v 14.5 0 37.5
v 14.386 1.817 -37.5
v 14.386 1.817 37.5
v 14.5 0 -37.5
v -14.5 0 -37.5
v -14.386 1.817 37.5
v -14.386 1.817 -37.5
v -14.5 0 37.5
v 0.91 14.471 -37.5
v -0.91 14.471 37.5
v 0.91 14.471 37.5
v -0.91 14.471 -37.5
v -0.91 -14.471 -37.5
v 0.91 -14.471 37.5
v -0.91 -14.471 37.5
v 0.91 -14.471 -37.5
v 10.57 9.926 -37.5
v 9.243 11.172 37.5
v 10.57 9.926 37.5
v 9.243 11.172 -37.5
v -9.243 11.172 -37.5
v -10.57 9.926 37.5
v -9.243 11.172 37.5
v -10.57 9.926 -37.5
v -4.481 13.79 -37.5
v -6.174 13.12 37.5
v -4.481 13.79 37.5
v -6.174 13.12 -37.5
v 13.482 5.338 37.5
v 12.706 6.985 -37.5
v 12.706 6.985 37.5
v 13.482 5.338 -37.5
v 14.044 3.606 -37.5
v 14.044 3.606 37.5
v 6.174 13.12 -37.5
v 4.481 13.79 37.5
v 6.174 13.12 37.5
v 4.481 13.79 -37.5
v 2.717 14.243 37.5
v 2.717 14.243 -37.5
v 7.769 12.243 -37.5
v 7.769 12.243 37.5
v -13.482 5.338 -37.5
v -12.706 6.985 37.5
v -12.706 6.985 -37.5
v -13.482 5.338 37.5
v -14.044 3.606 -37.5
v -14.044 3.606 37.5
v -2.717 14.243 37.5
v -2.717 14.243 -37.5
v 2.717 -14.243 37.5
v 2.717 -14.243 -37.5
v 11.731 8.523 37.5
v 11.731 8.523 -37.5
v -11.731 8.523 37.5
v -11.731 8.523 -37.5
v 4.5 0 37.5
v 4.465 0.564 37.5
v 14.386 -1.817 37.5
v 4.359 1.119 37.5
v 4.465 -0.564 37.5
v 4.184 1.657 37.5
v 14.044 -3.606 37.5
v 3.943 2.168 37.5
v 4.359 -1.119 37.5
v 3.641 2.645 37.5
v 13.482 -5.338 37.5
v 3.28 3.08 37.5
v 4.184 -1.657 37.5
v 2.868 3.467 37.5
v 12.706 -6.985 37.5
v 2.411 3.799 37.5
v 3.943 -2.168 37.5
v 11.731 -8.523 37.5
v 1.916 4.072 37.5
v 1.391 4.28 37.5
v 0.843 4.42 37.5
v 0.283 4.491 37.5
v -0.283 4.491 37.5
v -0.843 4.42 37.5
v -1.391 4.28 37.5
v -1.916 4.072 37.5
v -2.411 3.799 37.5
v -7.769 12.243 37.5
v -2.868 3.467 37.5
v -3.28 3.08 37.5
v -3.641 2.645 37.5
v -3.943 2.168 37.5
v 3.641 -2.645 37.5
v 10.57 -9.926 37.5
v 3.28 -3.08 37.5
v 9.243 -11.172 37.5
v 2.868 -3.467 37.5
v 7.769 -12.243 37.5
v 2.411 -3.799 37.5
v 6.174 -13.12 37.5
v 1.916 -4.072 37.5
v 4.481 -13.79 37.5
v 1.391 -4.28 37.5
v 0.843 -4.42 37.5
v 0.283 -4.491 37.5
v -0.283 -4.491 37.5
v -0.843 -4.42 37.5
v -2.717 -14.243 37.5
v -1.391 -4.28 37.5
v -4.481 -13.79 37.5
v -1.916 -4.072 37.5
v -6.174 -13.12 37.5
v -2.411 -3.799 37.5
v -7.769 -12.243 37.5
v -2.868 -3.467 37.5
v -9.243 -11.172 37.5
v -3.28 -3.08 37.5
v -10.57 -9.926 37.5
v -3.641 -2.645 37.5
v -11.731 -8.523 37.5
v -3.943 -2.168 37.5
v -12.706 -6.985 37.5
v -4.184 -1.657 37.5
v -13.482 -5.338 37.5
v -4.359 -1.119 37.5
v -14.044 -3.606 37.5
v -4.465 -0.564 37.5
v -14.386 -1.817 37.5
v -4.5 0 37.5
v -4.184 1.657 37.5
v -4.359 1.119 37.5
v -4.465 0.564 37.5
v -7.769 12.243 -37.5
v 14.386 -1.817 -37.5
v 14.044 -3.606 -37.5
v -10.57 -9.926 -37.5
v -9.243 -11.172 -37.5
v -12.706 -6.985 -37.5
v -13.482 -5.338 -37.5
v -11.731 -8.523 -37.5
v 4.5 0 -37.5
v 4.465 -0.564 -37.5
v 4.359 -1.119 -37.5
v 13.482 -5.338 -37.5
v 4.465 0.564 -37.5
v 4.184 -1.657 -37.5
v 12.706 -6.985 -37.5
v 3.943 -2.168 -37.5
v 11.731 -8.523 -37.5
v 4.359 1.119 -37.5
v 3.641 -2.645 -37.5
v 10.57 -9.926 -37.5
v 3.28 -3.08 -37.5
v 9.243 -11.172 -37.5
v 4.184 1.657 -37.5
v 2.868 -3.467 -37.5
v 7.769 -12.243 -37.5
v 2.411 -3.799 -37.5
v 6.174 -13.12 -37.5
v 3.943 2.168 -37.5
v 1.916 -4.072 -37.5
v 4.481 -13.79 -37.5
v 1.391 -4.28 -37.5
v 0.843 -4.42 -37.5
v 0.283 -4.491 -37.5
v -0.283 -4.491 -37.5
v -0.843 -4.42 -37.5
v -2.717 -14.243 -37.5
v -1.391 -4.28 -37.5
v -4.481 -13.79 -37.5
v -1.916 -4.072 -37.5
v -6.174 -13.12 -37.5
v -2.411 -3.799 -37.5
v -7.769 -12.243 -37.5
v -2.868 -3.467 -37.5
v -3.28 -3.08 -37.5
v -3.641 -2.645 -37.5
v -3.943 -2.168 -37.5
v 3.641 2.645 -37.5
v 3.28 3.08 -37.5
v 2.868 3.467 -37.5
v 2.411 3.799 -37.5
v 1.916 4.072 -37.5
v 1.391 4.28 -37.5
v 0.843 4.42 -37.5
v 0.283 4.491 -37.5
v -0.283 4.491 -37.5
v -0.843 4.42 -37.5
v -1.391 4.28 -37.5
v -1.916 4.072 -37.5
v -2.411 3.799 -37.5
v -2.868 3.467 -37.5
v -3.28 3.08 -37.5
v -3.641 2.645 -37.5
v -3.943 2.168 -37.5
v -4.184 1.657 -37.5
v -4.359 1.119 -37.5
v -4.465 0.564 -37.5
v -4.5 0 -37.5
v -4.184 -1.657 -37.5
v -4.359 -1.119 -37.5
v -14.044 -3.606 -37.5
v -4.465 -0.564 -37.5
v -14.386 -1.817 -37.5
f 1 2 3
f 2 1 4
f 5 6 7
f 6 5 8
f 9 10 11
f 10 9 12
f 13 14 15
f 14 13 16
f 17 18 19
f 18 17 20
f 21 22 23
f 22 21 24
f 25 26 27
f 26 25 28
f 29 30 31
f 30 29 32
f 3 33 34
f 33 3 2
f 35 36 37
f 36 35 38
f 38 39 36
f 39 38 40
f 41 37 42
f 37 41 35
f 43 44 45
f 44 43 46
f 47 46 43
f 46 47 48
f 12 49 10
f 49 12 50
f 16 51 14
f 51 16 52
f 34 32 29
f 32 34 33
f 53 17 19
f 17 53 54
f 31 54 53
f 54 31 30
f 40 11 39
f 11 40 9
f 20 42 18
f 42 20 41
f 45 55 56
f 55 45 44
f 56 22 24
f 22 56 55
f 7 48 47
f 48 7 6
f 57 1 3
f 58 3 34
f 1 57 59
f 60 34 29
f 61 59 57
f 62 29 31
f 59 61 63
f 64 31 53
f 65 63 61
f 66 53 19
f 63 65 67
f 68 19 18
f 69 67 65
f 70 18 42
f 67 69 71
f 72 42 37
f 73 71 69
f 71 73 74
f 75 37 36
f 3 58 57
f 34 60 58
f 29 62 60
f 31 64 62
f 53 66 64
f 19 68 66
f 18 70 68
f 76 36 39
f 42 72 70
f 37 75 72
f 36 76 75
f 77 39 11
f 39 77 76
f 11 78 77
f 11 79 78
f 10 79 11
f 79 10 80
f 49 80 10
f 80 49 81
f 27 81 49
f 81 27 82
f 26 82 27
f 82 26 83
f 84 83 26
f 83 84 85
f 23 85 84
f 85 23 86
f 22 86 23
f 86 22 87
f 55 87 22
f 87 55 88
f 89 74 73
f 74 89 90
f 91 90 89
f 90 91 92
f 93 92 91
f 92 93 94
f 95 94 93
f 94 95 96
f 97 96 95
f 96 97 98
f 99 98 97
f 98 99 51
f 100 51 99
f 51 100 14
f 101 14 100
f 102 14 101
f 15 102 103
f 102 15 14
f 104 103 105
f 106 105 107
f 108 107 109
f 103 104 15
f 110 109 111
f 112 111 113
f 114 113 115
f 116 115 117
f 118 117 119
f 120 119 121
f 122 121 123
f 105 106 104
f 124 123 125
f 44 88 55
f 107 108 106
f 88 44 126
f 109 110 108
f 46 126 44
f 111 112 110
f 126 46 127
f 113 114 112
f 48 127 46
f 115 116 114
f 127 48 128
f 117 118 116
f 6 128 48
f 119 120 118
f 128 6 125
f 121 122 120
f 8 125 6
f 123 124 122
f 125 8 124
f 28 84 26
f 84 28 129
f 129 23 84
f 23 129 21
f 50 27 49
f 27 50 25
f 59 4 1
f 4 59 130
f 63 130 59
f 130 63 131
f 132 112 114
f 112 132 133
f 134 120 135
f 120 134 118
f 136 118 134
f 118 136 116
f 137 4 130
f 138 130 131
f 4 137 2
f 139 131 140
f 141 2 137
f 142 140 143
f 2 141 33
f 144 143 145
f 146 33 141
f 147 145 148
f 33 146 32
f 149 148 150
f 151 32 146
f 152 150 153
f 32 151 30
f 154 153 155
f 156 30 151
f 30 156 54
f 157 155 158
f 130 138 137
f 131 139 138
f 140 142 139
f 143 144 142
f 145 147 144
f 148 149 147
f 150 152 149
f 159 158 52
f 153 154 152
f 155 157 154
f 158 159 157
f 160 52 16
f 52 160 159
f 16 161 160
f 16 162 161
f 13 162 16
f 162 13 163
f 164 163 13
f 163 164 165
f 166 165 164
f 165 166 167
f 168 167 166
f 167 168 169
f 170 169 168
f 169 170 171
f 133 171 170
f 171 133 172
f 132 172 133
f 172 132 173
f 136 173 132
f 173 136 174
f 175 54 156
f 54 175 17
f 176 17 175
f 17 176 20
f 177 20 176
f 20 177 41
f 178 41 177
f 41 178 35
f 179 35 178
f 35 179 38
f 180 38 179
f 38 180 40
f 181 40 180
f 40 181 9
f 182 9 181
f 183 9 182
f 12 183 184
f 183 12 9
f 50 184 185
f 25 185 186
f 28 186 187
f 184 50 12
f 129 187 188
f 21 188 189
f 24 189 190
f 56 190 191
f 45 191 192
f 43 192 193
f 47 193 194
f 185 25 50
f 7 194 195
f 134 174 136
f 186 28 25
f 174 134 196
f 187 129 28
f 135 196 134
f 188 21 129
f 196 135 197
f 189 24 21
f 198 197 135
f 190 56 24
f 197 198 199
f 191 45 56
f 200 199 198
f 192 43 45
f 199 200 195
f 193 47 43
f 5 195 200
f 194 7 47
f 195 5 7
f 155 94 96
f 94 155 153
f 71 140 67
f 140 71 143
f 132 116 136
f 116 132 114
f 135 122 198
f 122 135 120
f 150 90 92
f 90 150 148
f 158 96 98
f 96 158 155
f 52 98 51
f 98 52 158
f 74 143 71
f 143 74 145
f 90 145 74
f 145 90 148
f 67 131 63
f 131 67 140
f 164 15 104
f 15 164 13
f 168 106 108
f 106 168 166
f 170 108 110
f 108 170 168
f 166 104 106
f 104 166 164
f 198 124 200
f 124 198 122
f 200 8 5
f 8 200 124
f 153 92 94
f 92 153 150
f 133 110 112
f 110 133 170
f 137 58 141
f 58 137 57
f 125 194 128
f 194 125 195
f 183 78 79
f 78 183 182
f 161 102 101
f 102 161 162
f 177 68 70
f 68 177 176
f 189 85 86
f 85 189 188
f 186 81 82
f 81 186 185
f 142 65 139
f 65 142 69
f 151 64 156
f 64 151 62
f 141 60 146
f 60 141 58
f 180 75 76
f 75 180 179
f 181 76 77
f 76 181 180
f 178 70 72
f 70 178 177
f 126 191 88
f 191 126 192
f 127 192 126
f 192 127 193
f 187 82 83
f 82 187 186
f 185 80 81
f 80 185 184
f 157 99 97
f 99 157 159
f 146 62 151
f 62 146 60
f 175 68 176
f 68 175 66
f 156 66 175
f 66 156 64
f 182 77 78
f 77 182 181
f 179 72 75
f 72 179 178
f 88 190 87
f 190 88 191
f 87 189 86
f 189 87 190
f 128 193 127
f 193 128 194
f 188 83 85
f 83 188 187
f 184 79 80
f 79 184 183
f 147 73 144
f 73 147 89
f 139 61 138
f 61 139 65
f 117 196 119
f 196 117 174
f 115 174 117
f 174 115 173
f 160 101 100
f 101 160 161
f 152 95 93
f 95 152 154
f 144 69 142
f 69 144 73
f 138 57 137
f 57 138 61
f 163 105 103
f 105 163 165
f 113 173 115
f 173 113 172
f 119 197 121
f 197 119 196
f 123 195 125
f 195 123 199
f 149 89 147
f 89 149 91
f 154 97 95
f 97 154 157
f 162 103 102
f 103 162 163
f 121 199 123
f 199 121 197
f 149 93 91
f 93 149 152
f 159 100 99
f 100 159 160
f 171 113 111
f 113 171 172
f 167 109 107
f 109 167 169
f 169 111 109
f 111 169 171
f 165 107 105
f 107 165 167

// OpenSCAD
$fn = 50;


difference() {
	union() {
		translate(v = [0, 0, -37.5000000000]) {
			cylinder(h = 75, r = 14.5000000000);
		}
	}
	union() {
		translate(v = [0, 0, -100.0000000000]) {
			cylinder(h = 200, r = 4.5000000000);
		}
	}
}
